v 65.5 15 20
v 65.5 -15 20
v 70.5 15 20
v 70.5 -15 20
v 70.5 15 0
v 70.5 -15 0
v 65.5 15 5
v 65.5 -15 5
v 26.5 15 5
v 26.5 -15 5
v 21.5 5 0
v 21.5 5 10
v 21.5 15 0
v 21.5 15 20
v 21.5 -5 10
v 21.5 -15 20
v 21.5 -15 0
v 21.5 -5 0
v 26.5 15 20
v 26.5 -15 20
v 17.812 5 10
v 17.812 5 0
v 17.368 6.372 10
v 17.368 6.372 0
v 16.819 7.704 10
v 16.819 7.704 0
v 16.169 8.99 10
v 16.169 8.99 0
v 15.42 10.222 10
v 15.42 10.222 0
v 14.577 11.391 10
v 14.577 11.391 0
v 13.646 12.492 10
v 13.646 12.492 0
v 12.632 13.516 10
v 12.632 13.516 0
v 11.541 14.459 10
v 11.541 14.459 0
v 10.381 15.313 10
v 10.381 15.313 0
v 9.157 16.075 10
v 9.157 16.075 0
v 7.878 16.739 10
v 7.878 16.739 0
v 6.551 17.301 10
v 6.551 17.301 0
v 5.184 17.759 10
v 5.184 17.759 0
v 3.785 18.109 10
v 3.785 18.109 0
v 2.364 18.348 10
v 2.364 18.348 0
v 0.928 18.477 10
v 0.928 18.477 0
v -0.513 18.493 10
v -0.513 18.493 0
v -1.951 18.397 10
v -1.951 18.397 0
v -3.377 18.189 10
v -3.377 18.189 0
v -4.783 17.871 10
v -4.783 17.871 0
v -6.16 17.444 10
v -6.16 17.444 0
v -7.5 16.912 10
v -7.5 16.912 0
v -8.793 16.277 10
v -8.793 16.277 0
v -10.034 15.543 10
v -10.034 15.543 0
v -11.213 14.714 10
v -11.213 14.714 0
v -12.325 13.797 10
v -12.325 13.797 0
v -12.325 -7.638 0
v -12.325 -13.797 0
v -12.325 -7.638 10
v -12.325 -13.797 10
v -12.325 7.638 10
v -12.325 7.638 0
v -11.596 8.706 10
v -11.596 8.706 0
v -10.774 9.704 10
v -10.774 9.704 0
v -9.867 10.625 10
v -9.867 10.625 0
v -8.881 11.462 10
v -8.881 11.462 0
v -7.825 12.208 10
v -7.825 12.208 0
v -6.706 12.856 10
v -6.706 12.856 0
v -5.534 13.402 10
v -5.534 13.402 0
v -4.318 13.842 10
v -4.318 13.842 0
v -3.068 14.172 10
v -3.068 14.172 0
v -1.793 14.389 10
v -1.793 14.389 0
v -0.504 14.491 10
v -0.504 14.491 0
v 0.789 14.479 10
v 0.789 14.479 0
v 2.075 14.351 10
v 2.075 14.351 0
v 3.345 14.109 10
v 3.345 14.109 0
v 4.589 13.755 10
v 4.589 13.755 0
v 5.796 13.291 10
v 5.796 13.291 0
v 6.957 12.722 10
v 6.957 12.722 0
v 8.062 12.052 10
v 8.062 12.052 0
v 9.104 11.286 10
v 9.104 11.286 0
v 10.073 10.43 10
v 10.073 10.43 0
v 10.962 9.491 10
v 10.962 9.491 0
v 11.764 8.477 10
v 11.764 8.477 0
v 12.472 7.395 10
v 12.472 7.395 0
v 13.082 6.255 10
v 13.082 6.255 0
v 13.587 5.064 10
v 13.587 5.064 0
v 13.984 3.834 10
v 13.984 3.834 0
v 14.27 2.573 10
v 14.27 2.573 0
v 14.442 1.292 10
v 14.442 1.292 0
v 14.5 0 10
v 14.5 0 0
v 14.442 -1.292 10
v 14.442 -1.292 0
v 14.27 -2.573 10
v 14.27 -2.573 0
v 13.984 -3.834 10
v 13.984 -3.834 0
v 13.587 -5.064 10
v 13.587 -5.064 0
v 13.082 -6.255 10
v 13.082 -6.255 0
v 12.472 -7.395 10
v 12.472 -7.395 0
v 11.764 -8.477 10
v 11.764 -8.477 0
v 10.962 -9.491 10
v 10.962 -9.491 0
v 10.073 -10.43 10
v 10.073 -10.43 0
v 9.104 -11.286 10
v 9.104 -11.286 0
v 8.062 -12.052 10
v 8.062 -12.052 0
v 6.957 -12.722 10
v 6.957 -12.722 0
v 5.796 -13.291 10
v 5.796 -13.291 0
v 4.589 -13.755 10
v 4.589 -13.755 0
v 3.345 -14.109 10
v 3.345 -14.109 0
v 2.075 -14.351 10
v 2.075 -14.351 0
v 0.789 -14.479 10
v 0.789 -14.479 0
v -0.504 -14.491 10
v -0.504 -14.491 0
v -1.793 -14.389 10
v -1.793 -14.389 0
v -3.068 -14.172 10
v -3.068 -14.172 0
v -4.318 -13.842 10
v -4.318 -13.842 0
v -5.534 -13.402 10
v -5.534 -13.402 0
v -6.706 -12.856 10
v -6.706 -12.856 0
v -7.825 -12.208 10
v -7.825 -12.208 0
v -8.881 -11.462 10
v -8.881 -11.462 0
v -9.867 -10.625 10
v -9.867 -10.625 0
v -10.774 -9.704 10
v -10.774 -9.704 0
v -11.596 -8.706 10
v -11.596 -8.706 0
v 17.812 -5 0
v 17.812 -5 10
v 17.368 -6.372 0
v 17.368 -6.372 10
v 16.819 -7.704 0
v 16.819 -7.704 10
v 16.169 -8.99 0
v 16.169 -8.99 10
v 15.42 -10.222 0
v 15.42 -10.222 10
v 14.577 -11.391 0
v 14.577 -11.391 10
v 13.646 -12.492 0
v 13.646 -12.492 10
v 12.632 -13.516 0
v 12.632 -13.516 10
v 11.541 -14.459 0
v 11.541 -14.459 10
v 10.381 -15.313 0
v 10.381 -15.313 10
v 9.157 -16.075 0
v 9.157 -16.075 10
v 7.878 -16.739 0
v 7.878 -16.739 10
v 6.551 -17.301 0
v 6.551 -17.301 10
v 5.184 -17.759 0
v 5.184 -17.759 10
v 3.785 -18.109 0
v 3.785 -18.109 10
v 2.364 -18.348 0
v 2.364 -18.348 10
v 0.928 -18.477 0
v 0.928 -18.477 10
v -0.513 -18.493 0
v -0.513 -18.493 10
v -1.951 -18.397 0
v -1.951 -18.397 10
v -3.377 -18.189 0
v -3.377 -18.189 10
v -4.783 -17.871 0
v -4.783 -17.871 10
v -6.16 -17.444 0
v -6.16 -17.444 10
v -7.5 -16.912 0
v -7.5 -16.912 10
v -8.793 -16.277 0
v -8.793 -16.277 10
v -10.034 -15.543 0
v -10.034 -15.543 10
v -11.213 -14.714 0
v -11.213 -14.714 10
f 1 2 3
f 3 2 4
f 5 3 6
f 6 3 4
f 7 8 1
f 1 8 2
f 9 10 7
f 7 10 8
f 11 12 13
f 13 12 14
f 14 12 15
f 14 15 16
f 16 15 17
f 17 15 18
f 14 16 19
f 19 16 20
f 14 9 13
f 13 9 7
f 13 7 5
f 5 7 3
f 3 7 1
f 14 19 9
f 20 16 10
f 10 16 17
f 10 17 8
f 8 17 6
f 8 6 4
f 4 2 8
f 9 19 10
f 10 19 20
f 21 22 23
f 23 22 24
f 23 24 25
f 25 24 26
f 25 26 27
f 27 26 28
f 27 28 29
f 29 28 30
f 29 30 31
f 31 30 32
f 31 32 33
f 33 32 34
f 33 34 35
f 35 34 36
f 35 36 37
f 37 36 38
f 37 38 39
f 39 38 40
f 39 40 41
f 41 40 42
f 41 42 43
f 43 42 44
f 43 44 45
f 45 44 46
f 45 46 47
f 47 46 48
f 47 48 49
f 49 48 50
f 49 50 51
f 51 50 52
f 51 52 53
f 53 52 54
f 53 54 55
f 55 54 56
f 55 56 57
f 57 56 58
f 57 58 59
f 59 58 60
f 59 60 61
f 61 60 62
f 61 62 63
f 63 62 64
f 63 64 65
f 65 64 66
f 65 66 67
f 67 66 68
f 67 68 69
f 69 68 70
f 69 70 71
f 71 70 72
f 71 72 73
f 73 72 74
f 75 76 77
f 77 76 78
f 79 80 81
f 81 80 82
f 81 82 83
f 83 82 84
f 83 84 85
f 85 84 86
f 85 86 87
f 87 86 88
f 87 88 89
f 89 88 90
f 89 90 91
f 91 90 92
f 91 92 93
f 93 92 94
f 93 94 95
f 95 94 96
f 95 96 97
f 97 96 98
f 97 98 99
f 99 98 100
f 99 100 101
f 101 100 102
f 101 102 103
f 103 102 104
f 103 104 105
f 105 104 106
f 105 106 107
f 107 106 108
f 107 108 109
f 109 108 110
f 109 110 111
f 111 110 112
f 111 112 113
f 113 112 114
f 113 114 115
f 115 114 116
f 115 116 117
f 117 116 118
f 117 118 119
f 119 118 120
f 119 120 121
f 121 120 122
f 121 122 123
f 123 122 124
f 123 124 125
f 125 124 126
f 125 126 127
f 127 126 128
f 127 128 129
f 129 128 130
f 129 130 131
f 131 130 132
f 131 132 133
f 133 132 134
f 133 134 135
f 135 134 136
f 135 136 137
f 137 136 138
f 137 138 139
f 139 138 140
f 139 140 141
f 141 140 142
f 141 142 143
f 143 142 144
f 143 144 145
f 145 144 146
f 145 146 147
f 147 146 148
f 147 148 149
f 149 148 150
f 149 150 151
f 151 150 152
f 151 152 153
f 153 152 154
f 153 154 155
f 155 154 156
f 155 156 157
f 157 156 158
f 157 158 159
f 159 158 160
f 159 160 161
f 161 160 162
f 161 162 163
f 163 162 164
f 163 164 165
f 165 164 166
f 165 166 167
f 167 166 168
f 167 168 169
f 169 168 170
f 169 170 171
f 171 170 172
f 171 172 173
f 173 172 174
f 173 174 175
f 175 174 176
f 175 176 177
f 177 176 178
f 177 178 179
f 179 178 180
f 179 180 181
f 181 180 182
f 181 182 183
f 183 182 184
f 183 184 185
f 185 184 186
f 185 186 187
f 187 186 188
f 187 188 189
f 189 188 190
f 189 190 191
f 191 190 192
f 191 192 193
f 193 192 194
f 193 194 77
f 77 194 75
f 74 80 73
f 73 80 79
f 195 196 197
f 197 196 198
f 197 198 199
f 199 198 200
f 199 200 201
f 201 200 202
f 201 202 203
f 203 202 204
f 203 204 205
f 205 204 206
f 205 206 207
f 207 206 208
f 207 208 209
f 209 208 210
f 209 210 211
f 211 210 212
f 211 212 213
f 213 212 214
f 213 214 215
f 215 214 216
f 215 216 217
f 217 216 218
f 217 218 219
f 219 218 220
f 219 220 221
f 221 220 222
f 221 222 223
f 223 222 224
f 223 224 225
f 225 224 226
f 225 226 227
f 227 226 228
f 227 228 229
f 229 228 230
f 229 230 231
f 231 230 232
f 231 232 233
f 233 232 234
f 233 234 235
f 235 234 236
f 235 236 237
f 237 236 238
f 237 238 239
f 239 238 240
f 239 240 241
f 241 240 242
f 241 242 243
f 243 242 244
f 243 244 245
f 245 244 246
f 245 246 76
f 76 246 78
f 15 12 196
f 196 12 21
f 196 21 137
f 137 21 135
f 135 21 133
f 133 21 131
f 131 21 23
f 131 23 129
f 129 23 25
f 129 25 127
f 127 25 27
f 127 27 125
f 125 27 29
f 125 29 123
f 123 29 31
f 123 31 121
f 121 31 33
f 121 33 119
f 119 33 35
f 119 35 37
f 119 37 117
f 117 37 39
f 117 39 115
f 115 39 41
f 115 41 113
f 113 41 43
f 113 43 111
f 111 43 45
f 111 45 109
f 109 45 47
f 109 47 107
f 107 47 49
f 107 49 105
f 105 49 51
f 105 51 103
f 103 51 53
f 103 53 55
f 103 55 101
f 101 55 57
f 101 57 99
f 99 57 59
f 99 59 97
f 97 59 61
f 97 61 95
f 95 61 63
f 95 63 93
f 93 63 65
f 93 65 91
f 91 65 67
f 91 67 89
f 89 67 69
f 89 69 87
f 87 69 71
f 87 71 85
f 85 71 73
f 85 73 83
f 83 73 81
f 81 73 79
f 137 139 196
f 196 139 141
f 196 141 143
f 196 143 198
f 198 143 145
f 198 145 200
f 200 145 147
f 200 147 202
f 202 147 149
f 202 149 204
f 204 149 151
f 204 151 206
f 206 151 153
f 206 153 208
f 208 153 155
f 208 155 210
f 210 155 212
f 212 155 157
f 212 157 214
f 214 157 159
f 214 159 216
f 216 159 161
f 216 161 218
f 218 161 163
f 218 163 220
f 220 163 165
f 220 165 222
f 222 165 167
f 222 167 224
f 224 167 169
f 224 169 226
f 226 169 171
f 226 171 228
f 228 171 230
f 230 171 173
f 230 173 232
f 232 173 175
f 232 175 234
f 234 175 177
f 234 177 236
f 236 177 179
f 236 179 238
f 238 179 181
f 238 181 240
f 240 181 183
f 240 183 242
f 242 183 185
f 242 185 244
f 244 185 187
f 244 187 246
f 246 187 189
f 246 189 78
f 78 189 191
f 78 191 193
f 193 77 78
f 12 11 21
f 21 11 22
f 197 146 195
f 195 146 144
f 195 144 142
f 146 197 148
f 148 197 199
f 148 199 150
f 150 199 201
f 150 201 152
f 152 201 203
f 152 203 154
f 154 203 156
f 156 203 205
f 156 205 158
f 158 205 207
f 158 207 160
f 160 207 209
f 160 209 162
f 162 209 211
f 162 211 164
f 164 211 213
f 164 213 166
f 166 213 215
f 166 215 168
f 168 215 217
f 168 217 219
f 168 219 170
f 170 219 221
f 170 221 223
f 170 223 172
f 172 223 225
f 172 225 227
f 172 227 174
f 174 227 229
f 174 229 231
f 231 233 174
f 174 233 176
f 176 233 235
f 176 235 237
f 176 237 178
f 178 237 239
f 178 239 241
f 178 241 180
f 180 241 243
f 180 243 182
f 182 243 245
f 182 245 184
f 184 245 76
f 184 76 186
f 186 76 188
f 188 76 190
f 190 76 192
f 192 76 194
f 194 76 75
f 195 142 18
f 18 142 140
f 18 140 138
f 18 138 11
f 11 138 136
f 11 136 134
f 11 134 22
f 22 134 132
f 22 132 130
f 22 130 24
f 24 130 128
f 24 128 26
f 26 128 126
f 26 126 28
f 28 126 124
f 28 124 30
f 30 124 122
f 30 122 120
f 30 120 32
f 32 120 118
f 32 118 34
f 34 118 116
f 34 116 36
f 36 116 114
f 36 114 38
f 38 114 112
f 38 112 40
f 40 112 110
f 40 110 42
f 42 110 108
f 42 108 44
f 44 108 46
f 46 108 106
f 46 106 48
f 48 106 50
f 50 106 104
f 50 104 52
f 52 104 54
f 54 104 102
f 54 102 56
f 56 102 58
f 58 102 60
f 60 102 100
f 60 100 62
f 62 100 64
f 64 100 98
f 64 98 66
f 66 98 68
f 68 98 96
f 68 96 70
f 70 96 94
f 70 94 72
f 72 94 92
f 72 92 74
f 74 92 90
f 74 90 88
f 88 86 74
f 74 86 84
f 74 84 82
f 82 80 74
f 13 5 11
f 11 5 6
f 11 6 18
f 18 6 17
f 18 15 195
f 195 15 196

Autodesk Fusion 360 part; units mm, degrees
sketch "doorStop" plane through (0, 0, 0) normal (0, 0, 1) x (1, 0, 0)
  circle A0 centre (0, 0) radius 18.5
  circle A1 centre (0, 0) radius 14.5
  line L0 (0, 0) -> (-12.325, 0) construction
  line L1 (-12.325, 0) -> (-14.5, 0)
  line L2 (-14.5, 0) -> (-14.5, 16.5)
  line L3 (-14.5, 16.5) -> (-12.325, 16.5)
  line L4 (-12.325, 16.5) -> (-12.325, 0)
  line L5 (-12.325, 0) -> (-14.5, 0)
  line L6 (-14.5, 0) -> (-14.5, -16.5)
  line L7 (-14.5, -16.5) -> (-12.325, -16.5)
  line L8 (-12.325, -16.5) -> (-12.325, 0)
  dimension "d4" = 37
  dimension "d5" = 29
  dimension "d6" = 12.325
  dimension "d7" = 2.175
  dimension "d8" = 16.5
  dimension "d9" = 2.175
  dimension "d10" = 16.5
extrude "Extrude1" add sketch "doorStop" along normal blind 10 contours A0 A1 L4 L8 makes body 1
ref_plane "WorkPlane3" through (18.5, 0, 8.3668) normal (1, 0, 0) x (0, -1, 0)
sketch "link" plane through (18.5, 0, 7.5753) normal (1, 0, 0) x (0, 1, 0)
  line L0 (-13.7965, -7.5753) -> (-7.6383, -7.5753)
  line L1 (-7.6383, 2.4247) -> (-13.7965, 2.4247)
  line L2 (-7.6383, -7.5753) -> (7.6383, -7.5753)
  line L3 (7.6383, 2.4247) -> (-7.6383, 2.4247)
  line L4 (13.7965, -7.5753) -> (7.6383, -7.5753)
  line L5 (13.7965, 2.4247) -> (7.6383, 2.4247)
  line L6 (-13.7965, -7.5753) -> (-18.5, -7.5753)
  line L7 (18.5, -7.5753) -> (13.7965, -7.5753)
  line L8 (-13.7965, 2.4247) -> (-18.5, 2.4247)
  line L9 (18.5, 2.4247) -> (13.7965, 2.4247)
  line L10 (18.5, -7.5753) -> (18.5, 2.4247)
  line L11 (-18.5, -7.5753) -> (-18.5, 2.4247)
  line L12 (-18.5, -7.5753) -> (18.5, -7.5753) construction
  line L13 (-18.5, -7.5753) -> (18.5, -7.5753) construction
  line L14 (0, -7.5753) -> (-5, -7.5753) construction
  line L15 (-5, -7.5753) -> (5, -7.5753)
  line L16 (5, -7.5753) -> (5, 2.4247)
  line L17 (5, 2.4247) -> (-5, 2.4247)
  line L18 (-5, 2.4247) -> (-5, -7.5753)
  point P0 (0, -7.5753)
  dimension "d20" = 5
  dimension "d21" = 10
  dimension "d22" = 10
extrude "Extrude2" add sketch "link" along normal blind 3 separate body contours L2 L3 L15 L16 L17 L18 makes body 2
extrude "Extrude3" add 1 faces at (18.5, -1.6667, 6.6667) along direction (-1, 0, 0) blind 1 on bodies 2 bodies 2 1
ref_plane "WorkPlane4" through (21.5, 0, 5) normal (1, 0, 0) x (0, 0, -1)
sketch "doorHolder1" plane through (21.5, 0, 2.5) normal (1, 0, 0) x (0, 1, 0)
  line L0 (-5, 7.5) -> (-5, -2.5)
  line L1 (-5, -2.5) -> (5, -2.5)
  line L2 (5, -2.5) -> (5, 7.5)
  line L3 (5, 7.5) -> (-5, 7.5)
  line L4 (-5, -2.5) -> (5, -2.5) construction
  line L5 (0, -2.5) -> (-15, -2.5) construction
  line L6 (-15, -2.5) -> (15, -2.5)
  line L7 (15, -2.5) -> (15, 17.5)
  line L8 (15, 17.5) -> (-15, 17.5)
  line L9 (-15, 17.5) -> (-15, -2.5)
  point P0 (0, -2.5)
  dimension "d31" = 15
  dimension "d32" = 30
  dimension "d33" = 20
extrude "Extrude4" add sketch "doorHolder1" along normal blind 5 bodies 2
ref_plane "WorkPlane5" through (26.5, 0, 10) normal (1, 0, 0) x (0, 0, -1)
sketch "doorHolderBottom" plane through (26.5, 0, 10) normal (1, 0, 0) x (0, 1, 0)
  line L0 (-15, 10) -> (-15, -10)
  line L1 (-15, -10) -> (15, -10)
  line L2 (15, -10) -> (15, 10)
  line L3 (15, 10) -> (-15, 10)
  line L4 (-15, -10) -> (15, -10)
  line L5 (15, -10) -> (15, -5)
  line L6 (15, -5) -> (-15, -5)
  line L7 (-15, -5) -> (-15, -10)
  dimension "d37" = 30
  dimension "d38" = 5
extrude "Extrude5" add sketch "doorHolderBottom" along normal blind 39 contours L0 L1 L2 L4 L5 L6 L7 bodies 2
ref_plane "WorkPlane6" through (65.5, 0, 2.5) normal (1, 0, 0) x (0, 0, -1)
sketch "doorHolder2" plane through (65.5, 0, 2.5) normal (1, 0, 0) x (0, 1, 0)
  line L0 (0, -2.5) -> (-15, -2.5) construction
  line L1 (-15, -2.5) -> (15, -2.5)
  line L2 (15, 17.5) -> (-15, 17.5)
  line L3 (15, -2.5) -> (15, 17.5)
  line L4 (-2.5, 2.5) -> (-2.5, -2.5)
  line L5 (-15, 17.5) -> (-15, -2.5)
  line L6 (2.5, 2.5) -> (-2.5, 2.5)
  line L7 (-2.5, -2.5) -> (2.5, -2.5) construction
  line L8 (2.5, -2.5) -> (2.5, 2.5)
  line L9 (-2.5, -2.5) -> (2.5, -2.5)
  point P0 (0, -2.5)
  dimension "d43" = 15
  dimension "d44" = 30
  dimension "d45" = 20
extrude "Extrude6" add sketch "doorHolder2" along normal blind 5 bodies 2
equation "doorStopDiameter = 29 mm"
equation "doorStopHolderThickness = 4 mm"
equation "d4 = doorStopDiameter + ( 2 * doorStopHolderThickness )"
equation "d5 = doorStopDiameter"
equation "d6 = ( doorStopDiameter / 2 ) * ( doorStopHolderClosurePercent )"
equation "d7 = ( doorStopDiameter / 2 ) * ( 1 - doorStopHolderClosurePercent )"
equation "d8 = ( doorStopDiameter + doorStopHolderThickness ) / 2"
equation "d9 = ( doorStopDiameter / 2 ) * ( 1 - doorStopHolderClosurePercent )"
equation "d10 = ( doorStopDiameter + doorStopHolderThickness ) / 2"
equation "d11 = doorStopHeight"
equation "doorStopHeight = 10 mm"
equation "linkLength = 3 mm"
equation "linkThickness = 10 mm"
equation "d20 = linkThickness / 2"
equation "d21 = linkThickness"
equation "d22 = doorStopHeight"
equation "d23 = linkLength"
equation "doorHolderHeight = 15 mm"
equation "doorHolderWidth = 30 mm"
equation "doorHolderThickness = 5 mm"
equation "d31 = doorHolderWidth / 2"
equation "d32 = doorHolderWidth"
equation "d33 = doorHolderHeight + doorHolderThickness"
equation "d34 = doorHolderThickness"
equation "d37 = doorHolderWidth"
equation "d38 = doorHolderThickness"
equation "d39 = doorThickness"
equation "doorThickness = 39 mm"
equation "d43 = doorHolderWidth / 2"
equation "d44 = doorHolderWidth"
equation "d45 = doorHolderHeight + doorHolderThickness"
equation "d46 = doorHolderThickness"
equation "doorStopHolderClosurePercent = 0.85"
